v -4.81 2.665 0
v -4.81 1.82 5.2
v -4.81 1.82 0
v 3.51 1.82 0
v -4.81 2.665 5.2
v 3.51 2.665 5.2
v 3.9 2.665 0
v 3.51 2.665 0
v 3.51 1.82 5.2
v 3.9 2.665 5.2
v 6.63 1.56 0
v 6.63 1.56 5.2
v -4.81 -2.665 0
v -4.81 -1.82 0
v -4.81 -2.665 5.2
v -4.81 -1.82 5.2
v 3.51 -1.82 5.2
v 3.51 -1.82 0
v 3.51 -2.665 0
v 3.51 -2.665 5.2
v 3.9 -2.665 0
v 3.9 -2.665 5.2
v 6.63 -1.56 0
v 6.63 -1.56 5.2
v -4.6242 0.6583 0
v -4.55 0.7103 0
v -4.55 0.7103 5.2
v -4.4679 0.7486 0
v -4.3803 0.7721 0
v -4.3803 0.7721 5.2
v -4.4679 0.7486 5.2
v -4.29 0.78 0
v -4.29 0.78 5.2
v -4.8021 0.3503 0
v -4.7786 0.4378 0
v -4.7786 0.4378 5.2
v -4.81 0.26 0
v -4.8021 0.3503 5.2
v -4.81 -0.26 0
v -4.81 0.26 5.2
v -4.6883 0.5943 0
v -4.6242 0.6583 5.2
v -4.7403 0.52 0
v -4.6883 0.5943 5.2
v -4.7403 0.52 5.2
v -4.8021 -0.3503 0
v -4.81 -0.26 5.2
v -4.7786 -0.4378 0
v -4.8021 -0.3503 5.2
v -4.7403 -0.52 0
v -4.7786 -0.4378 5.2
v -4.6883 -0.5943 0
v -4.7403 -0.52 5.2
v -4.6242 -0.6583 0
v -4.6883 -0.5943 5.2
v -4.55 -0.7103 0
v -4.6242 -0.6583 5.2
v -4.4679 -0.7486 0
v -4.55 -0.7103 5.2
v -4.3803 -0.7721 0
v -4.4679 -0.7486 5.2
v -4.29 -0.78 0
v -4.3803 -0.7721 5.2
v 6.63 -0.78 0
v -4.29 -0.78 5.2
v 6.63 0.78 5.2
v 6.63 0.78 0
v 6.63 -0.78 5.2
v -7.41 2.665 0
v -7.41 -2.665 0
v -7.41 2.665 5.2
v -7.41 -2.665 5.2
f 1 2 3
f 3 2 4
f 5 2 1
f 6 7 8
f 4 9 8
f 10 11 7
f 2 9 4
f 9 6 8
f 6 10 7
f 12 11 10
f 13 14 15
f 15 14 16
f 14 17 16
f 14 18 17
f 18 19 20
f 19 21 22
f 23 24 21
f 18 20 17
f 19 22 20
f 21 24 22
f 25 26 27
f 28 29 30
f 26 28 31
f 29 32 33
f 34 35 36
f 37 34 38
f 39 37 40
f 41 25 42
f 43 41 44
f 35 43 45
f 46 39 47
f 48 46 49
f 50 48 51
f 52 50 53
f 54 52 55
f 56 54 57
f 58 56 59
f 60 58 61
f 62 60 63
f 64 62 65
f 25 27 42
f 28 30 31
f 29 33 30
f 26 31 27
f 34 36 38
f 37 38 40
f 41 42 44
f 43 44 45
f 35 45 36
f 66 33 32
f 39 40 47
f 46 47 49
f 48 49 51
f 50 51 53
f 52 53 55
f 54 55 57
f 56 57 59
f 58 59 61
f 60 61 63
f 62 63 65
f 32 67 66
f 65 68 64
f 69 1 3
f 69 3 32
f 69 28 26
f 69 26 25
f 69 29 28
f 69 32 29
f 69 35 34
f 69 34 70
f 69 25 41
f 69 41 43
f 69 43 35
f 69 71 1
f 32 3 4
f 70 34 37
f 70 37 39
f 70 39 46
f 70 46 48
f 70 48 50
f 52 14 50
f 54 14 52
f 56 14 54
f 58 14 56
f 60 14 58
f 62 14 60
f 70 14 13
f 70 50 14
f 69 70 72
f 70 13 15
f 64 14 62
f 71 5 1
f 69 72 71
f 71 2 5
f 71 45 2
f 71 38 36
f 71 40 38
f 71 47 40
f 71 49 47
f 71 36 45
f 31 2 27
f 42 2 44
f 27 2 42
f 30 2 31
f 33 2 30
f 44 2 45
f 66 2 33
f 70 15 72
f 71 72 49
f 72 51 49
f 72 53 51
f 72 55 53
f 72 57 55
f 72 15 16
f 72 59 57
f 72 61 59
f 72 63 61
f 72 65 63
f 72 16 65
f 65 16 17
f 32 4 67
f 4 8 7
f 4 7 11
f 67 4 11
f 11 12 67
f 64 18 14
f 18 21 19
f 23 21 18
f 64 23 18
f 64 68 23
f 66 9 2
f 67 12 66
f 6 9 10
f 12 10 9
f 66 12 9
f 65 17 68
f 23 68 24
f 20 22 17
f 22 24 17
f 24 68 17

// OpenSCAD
$fn = 50;

difference() {
	union() {
		translate(v = [0, 0, 0]) {
			rotate(a = [90, 0, 0]) {
				difference() {
					union() {
						translate(v = [-7.41, 0, -2.665]) {
							cube(size = [14.04, 5.2, 5.33]);
						}
					}
					union() {
						translate(v = [0, 5.3, 0]) {
							rotate(a = [90, 0, 0]) {
								linear_extrude(height = 5.4) {
									polygon(points = [[-4.81, -1.82], [3.51, -1.82], [3.51, -2.665], [3.9, -2.665], [6.63, -1.56], [6.73, -1.56], [6.73, -2.765], [-4.81, -2.765]]);
								}
							}
						}
						translate(v = [0, 5.3, 0]) {
							rotate(a = [90, 0, 0]) {
								linear_extrude(height = 5.4) {
									polygon(points = [[-4.81, 1.82], [3.51, 1.82], [3.51, 2.665], [3.9, 2.665], [6.63, 1.56], [6.73, 1.56], [6.73, 2.765], [-4.81, 2.765]]);
								}
							}
						}
						translate(v = [0, 5.3, 0]) {
							rotate(a = [90, 0, 0]) {
								linear_extrude(height = 5.4) {
									polygon(points = [[-4.81, 0.26], [-4.8021, 0.350297], [-4.77864, 0.43785], [-4.740333, 0.52], [-4.688343, 0.59425], [-4.62425, 0.658343], [-4.55, 0.710333], [-4.46785, 0.74864], [-4.380297, 0.7721], [-4.29, 0.78], [6.73, 0.78], [6.73, -0.78], [-4.29, -0.78], [-4.380297, -0.7721], [-4.46785, -0.74864], [-4.55, -0.710333], [-4.62425, -0.658343], [-4.688343, -0.59425], [-4.740333, -0.52], [-4.77864, -0.43785], [-4.8021, -0.350297], [-4.81, -0.26]]);
								}
							}
						}
					}
				}
			}
		}
	}
	union();
}
